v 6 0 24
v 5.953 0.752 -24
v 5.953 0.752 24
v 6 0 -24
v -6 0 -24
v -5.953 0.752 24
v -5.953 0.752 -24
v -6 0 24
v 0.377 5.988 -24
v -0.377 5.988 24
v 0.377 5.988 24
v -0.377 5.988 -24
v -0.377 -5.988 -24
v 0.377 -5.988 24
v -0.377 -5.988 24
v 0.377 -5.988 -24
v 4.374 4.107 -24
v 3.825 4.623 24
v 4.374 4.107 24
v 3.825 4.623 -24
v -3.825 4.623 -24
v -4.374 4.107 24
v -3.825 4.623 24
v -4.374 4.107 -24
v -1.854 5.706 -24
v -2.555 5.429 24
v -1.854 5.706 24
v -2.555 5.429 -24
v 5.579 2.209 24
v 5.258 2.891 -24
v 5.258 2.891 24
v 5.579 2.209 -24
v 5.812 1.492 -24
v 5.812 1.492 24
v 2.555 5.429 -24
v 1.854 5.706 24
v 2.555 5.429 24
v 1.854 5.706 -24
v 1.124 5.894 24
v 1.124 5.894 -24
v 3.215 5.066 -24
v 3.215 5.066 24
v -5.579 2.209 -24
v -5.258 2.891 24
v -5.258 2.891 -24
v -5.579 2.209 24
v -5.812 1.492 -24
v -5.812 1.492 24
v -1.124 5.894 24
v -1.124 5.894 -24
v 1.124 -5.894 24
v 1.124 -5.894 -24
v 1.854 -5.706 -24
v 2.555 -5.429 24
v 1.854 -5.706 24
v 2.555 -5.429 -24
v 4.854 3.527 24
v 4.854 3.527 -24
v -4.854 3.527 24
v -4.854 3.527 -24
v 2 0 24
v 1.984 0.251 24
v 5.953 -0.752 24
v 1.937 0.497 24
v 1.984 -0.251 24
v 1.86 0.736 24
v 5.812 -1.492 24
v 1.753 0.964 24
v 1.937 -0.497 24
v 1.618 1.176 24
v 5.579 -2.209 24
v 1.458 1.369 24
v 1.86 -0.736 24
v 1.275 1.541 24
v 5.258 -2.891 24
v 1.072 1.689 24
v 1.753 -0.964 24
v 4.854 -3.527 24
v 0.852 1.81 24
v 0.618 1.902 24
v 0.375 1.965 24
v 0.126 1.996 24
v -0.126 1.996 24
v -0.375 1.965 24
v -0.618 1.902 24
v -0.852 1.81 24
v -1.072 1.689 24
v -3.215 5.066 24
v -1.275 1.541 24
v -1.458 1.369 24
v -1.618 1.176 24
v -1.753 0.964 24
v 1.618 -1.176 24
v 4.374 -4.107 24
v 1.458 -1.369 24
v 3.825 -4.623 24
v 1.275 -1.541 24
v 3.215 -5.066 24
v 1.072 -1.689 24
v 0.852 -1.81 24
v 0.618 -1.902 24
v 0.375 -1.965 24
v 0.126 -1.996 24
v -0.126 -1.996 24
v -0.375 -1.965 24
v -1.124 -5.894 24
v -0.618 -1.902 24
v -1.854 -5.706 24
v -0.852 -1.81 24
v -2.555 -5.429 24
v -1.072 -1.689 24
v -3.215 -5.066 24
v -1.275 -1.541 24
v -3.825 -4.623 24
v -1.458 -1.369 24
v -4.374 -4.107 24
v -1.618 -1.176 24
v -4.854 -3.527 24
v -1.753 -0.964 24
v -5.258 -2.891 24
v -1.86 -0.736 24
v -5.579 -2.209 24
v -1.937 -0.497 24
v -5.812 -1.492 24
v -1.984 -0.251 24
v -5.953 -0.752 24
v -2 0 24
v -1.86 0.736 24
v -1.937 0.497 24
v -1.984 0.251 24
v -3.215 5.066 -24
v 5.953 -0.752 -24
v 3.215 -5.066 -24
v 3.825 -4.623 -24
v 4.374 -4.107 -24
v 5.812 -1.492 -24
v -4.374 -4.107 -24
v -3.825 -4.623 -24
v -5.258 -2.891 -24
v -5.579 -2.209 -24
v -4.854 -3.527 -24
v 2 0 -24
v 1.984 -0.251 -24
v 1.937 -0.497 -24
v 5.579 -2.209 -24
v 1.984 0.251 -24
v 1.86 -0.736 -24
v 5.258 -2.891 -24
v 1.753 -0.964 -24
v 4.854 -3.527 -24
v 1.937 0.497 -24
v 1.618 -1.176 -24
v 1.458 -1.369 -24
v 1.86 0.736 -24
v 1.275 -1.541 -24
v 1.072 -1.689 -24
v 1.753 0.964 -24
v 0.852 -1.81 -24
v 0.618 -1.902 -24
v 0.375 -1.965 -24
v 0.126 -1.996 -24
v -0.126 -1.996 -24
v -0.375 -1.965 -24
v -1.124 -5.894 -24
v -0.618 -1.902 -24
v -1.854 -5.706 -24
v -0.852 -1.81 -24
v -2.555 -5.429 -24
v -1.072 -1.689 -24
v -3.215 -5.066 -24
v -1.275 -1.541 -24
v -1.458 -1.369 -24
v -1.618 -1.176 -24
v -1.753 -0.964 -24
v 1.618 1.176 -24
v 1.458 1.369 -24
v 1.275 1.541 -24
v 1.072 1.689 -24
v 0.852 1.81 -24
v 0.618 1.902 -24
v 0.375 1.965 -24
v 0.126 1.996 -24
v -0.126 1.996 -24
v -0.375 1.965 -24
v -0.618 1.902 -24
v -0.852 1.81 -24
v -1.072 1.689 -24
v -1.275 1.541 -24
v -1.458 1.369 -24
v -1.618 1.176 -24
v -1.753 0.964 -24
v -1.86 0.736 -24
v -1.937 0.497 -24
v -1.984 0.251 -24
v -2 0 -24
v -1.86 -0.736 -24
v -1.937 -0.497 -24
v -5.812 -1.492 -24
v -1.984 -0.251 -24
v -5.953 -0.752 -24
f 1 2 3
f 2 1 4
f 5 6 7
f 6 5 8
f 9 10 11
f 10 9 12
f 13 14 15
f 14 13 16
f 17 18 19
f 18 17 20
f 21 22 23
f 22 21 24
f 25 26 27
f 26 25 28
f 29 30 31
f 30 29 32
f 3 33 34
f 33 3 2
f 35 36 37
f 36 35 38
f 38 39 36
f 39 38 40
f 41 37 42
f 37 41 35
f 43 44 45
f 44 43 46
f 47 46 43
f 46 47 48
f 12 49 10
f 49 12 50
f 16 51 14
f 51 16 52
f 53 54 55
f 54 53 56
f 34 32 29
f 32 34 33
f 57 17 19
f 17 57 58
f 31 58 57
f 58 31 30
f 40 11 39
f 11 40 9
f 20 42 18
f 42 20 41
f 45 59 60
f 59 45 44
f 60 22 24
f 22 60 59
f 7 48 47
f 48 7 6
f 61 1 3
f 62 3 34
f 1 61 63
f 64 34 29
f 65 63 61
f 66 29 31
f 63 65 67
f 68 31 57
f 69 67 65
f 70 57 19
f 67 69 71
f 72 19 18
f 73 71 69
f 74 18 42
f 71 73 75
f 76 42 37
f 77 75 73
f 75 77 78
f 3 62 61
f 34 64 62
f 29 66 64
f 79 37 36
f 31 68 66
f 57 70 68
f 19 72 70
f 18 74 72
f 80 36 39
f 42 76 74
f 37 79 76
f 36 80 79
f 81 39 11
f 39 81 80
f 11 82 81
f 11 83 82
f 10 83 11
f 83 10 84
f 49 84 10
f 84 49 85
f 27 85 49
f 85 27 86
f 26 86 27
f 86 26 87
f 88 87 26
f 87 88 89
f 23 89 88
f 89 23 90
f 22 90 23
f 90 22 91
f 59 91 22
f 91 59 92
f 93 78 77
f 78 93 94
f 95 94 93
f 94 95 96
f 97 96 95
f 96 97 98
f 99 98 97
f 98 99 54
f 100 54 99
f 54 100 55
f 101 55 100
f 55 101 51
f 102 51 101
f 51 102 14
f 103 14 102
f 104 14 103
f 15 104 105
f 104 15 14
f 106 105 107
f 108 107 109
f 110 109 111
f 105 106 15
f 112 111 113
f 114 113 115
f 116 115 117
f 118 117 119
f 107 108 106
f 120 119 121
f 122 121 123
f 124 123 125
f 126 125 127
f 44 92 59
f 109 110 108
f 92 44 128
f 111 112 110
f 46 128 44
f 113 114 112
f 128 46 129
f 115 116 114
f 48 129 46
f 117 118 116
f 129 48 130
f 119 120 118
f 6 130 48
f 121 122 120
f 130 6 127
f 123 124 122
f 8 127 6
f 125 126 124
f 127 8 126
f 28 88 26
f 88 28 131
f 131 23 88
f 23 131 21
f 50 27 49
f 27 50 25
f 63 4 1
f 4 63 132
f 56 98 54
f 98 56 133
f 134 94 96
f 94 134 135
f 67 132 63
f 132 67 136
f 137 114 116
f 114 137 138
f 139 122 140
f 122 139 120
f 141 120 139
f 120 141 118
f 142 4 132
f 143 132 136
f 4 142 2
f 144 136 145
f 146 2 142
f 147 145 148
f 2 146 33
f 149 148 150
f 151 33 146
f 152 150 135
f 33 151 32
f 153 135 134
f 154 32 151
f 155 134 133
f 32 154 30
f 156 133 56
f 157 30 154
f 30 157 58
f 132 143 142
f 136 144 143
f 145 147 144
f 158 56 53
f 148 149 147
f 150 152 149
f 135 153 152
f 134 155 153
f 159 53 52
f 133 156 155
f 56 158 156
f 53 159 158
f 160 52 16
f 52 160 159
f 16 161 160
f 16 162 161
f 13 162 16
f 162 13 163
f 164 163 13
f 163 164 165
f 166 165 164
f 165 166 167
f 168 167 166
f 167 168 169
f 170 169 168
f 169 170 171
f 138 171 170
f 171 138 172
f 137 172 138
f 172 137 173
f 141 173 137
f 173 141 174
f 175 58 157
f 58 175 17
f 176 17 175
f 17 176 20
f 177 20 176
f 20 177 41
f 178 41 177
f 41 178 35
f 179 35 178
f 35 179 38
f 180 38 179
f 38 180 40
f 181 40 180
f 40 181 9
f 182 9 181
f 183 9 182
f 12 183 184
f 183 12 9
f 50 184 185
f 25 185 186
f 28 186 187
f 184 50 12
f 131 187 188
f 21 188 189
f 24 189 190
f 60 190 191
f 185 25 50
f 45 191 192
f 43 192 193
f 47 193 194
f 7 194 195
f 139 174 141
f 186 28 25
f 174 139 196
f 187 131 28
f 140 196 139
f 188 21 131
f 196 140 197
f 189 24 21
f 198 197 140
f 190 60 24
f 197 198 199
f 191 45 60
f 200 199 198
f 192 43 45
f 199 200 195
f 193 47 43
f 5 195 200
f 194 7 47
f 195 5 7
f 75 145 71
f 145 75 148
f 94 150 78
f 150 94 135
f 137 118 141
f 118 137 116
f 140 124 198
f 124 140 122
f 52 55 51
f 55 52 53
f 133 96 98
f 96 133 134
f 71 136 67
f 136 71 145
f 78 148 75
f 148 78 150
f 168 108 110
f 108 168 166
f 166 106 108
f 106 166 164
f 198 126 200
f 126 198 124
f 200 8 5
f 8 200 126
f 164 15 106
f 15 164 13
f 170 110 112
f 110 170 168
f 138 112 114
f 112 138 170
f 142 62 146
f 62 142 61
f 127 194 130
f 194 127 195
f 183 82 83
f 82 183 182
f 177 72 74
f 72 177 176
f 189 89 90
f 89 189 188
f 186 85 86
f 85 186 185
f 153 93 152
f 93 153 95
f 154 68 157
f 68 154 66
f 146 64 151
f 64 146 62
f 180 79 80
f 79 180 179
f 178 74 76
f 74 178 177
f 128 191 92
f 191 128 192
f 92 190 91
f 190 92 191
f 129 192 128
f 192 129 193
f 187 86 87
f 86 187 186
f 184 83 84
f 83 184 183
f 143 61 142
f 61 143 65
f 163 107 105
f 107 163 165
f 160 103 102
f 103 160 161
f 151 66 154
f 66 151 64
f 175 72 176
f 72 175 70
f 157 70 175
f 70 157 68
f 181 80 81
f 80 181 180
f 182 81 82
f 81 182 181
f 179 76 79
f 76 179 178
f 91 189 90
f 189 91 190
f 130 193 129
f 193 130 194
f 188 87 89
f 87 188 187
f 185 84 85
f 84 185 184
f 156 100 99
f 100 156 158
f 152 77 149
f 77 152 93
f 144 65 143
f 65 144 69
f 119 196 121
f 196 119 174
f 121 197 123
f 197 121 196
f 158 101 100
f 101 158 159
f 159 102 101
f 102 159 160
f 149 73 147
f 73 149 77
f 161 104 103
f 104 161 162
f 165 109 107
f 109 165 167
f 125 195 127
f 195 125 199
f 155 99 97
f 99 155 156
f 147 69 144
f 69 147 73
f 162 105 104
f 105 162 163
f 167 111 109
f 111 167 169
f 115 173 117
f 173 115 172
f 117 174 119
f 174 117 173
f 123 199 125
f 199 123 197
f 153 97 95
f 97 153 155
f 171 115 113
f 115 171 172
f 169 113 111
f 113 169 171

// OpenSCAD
$fn = 50;


difference() {
	union() {
		translate(v = [0, 0, -24.0000000000]) {
			cylinder(h = 48, r = 6.0000000000);
		}
	}
	union() {
		translate(v = [0, 0, -100.0000000000]) {
			cylinder(h = 200, r = 2);
		}
	}
}
